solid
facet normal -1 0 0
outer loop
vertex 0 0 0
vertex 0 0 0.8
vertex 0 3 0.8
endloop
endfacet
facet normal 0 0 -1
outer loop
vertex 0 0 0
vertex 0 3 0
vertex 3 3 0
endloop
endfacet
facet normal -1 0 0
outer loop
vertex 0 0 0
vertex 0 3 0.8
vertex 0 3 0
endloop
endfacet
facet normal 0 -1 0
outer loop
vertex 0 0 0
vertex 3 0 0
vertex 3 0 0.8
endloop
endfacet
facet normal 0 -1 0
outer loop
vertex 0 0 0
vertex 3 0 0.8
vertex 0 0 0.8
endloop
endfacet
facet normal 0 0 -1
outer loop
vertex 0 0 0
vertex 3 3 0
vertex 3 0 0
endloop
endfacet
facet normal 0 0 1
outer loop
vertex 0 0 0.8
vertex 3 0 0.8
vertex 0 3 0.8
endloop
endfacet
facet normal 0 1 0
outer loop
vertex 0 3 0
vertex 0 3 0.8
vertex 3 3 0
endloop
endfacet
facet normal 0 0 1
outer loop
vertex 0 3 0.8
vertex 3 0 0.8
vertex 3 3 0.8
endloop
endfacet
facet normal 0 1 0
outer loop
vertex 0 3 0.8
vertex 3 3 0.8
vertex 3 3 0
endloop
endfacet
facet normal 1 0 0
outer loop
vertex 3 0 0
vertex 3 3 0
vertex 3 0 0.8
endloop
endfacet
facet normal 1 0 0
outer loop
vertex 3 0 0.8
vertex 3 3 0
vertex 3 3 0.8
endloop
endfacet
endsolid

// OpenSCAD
/* Warning, this is a very basic generator with a lot of approximation 
input data : [WDFN, WMX, 3x3x0.8mm, 8, , A, C04-00460A]
generated by com.zoubworld.electronics.cad.model3d.Basic
Date : Sun Feb 15 10:50:48 CET 2026
*/

//body
color("black")
translate([0,0,0])
cube([3.0,3.0,0.8], center=false);
